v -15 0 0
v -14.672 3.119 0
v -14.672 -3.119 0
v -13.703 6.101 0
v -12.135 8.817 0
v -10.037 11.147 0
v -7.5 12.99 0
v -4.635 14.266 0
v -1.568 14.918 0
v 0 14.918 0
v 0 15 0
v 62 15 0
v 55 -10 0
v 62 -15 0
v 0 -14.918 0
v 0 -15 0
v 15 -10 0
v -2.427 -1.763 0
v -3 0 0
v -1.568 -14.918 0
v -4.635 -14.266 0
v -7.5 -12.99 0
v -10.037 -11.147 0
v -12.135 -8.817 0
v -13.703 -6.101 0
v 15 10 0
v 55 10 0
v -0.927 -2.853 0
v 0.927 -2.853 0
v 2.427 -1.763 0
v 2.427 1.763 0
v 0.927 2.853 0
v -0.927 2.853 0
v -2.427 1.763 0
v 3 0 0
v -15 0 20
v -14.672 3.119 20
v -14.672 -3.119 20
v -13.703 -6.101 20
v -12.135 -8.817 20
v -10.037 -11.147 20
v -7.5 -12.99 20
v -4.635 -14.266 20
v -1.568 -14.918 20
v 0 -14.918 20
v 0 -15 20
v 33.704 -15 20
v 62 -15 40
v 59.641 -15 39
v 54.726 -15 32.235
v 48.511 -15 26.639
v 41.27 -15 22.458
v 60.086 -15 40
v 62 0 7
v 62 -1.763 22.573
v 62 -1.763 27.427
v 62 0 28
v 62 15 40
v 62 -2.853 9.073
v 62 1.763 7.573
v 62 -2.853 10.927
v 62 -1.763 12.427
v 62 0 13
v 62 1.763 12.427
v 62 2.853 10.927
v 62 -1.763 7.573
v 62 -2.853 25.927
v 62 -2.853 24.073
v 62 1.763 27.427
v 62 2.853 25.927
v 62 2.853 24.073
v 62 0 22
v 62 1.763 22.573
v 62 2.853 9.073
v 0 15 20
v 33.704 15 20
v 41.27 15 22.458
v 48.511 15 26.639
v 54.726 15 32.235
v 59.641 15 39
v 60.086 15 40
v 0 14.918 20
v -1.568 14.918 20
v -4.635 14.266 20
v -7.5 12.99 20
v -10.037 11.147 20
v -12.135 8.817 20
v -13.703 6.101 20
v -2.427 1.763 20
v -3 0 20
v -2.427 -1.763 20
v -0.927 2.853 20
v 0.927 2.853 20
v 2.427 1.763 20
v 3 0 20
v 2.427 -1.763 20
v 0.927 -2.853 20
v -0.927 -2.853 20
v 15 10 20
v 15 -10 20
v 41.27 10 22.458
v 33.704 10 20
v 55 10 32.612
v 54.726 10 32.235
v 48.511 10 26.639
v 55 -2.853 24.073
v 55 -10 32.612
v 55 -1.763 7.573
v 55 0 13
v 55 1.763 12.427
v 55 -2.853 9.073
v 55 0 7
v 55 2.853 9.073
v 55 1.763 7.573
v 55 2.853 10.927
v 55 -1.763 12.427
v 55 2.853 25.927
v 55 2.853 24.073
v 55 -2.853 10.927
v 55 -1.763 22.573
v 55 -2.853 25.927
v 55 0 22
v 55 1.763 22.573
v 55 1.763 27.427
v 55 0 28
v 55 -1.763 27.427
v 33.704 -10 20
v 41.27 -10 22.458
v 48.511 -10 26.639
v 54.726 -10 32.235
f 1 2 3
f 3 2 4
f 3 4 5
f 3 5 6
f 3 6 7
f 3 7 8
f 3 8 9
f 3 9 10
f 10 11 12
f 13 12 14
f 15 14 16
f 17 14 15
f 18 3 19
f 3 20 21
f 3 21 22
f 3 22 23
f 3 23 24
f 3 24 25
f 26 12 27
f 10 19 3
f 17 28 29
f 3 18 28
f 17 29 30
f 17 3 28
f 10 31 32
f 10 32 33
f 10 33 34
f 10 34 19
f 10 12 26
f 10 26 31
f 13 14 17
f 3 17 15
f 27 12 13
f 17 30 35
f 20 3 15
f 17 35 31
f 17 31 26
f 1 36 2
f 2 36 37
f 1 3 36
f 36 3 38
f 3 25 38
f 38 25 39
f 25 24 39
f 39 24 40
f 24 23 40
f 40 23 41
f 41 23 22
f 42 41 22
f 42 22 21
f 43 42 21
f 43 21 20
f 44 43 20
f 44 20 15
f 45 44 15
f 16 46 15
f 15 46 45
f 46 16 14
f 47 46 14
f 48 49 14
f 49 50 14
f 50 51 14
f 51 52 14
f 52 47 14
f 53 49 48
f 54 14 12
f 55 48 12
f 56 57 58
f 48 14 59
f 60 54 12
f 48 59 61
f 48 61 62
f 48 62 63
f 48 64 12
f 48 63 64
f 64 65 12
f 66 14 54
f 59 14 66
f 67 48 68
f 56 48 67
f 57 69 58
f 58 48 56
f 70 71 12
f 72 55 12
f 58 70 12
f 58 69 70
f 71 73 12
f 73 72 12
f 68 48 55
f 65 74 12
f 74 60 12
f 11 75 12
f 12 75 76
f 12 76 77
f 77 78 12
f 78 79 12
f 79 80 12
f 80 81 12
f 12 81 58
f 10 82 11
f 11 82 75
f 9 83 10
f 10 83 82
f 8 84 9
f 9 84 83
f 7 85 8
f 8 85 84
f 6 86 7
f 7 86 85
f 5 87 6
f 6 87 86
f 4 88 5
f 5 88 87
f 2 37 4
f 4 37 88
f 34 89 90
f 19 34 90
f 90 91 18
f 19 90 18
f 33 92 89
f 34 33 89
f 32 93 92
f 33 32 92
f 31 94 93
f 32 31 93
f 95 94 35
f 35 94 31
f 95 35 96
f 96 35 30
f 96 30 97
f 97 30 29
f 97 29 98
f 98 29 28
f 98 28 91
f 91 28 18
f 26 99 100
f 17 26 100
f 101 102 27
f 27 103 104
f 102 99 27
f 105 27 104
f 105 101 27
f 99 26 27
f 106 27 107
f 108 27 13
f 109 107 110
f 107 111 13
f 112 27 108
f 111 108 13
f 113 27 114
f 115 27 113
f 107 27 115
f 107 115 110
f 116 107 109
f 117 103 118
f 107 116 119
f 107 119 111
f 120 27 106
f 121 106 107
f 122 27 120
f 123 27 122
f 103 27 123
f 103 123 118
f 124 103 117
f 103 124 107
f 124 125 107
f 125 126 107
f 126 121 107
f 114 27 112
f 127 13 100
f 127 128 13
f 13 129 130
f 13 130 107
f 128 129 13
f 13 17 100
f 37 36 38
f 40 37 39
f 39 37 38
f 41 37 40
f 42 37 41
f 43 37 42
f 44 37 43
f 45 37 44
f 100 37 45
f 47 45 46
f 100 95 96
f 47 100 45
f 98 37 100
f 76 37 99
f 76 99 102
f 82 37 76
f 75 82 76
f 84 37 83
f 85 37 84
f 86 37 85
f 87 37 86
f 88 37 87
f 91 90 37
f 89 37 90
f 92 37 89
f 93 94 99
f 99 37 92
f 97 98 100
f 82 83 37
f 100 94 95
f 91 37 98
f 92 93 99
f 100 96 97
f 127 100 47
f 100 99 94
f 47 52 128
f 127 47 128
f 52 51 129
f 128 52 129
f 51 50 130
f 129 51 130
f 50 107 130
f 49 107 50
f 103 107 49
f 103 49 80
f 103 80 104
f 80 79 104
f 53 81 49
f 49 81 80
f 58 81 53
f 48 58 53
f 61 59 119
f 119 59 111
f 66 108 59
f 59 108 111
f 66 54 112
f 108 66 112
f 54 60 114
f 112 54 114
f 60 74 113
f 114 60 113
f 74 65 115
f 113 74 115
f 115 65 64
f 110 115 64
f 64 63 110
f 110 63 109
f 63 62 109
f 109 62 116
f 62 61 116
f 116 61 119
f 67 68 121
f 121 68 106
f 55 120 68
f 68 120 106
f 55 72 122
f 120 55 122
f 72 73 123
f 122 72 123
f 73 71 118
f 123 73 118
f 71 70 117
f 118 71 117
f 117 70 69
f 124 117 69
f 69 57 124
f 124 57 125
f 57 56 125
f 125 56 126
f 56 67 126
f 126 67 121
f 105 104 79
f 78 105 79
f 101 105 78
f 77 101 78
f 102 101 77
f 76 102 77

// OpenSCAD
module test5(){


module test2(){


module mount(){


difference(){
translate([302,270,0])
cube([45,30,40]);

//translate([297,270,0])
//cube([50,20,60]);
translate([220,310,344])
test();

}
translate([285,285,0])
cylinder(r=15, h=20);

}

difference(){

translate([285,270,0])
cube([50,30,20]);

translate([285,285,-50]) 
cylinder(r=6.00/2, h=100);



}
difference(){
mount();

translate([285,285,-50]) 
cylinder(r=6.00/2, h=100);

}

module test(){
rotate([90,90,0])
translate([285,90,0]) 
cylinder(r=40, h=100);
}



}

difference(){

test2();


translate([300,270+5,-50])
cube([40,20,200]);

test4();
}


module test3(){
rotate([0,90,0])
translate([0,0,0])
cylinder(r=3, h=20);
}

module test4(){
translate([335,285,25])
test3();

translate([335,285,10])
test3();

}
}


translate([-285,-285,0])
test5();
